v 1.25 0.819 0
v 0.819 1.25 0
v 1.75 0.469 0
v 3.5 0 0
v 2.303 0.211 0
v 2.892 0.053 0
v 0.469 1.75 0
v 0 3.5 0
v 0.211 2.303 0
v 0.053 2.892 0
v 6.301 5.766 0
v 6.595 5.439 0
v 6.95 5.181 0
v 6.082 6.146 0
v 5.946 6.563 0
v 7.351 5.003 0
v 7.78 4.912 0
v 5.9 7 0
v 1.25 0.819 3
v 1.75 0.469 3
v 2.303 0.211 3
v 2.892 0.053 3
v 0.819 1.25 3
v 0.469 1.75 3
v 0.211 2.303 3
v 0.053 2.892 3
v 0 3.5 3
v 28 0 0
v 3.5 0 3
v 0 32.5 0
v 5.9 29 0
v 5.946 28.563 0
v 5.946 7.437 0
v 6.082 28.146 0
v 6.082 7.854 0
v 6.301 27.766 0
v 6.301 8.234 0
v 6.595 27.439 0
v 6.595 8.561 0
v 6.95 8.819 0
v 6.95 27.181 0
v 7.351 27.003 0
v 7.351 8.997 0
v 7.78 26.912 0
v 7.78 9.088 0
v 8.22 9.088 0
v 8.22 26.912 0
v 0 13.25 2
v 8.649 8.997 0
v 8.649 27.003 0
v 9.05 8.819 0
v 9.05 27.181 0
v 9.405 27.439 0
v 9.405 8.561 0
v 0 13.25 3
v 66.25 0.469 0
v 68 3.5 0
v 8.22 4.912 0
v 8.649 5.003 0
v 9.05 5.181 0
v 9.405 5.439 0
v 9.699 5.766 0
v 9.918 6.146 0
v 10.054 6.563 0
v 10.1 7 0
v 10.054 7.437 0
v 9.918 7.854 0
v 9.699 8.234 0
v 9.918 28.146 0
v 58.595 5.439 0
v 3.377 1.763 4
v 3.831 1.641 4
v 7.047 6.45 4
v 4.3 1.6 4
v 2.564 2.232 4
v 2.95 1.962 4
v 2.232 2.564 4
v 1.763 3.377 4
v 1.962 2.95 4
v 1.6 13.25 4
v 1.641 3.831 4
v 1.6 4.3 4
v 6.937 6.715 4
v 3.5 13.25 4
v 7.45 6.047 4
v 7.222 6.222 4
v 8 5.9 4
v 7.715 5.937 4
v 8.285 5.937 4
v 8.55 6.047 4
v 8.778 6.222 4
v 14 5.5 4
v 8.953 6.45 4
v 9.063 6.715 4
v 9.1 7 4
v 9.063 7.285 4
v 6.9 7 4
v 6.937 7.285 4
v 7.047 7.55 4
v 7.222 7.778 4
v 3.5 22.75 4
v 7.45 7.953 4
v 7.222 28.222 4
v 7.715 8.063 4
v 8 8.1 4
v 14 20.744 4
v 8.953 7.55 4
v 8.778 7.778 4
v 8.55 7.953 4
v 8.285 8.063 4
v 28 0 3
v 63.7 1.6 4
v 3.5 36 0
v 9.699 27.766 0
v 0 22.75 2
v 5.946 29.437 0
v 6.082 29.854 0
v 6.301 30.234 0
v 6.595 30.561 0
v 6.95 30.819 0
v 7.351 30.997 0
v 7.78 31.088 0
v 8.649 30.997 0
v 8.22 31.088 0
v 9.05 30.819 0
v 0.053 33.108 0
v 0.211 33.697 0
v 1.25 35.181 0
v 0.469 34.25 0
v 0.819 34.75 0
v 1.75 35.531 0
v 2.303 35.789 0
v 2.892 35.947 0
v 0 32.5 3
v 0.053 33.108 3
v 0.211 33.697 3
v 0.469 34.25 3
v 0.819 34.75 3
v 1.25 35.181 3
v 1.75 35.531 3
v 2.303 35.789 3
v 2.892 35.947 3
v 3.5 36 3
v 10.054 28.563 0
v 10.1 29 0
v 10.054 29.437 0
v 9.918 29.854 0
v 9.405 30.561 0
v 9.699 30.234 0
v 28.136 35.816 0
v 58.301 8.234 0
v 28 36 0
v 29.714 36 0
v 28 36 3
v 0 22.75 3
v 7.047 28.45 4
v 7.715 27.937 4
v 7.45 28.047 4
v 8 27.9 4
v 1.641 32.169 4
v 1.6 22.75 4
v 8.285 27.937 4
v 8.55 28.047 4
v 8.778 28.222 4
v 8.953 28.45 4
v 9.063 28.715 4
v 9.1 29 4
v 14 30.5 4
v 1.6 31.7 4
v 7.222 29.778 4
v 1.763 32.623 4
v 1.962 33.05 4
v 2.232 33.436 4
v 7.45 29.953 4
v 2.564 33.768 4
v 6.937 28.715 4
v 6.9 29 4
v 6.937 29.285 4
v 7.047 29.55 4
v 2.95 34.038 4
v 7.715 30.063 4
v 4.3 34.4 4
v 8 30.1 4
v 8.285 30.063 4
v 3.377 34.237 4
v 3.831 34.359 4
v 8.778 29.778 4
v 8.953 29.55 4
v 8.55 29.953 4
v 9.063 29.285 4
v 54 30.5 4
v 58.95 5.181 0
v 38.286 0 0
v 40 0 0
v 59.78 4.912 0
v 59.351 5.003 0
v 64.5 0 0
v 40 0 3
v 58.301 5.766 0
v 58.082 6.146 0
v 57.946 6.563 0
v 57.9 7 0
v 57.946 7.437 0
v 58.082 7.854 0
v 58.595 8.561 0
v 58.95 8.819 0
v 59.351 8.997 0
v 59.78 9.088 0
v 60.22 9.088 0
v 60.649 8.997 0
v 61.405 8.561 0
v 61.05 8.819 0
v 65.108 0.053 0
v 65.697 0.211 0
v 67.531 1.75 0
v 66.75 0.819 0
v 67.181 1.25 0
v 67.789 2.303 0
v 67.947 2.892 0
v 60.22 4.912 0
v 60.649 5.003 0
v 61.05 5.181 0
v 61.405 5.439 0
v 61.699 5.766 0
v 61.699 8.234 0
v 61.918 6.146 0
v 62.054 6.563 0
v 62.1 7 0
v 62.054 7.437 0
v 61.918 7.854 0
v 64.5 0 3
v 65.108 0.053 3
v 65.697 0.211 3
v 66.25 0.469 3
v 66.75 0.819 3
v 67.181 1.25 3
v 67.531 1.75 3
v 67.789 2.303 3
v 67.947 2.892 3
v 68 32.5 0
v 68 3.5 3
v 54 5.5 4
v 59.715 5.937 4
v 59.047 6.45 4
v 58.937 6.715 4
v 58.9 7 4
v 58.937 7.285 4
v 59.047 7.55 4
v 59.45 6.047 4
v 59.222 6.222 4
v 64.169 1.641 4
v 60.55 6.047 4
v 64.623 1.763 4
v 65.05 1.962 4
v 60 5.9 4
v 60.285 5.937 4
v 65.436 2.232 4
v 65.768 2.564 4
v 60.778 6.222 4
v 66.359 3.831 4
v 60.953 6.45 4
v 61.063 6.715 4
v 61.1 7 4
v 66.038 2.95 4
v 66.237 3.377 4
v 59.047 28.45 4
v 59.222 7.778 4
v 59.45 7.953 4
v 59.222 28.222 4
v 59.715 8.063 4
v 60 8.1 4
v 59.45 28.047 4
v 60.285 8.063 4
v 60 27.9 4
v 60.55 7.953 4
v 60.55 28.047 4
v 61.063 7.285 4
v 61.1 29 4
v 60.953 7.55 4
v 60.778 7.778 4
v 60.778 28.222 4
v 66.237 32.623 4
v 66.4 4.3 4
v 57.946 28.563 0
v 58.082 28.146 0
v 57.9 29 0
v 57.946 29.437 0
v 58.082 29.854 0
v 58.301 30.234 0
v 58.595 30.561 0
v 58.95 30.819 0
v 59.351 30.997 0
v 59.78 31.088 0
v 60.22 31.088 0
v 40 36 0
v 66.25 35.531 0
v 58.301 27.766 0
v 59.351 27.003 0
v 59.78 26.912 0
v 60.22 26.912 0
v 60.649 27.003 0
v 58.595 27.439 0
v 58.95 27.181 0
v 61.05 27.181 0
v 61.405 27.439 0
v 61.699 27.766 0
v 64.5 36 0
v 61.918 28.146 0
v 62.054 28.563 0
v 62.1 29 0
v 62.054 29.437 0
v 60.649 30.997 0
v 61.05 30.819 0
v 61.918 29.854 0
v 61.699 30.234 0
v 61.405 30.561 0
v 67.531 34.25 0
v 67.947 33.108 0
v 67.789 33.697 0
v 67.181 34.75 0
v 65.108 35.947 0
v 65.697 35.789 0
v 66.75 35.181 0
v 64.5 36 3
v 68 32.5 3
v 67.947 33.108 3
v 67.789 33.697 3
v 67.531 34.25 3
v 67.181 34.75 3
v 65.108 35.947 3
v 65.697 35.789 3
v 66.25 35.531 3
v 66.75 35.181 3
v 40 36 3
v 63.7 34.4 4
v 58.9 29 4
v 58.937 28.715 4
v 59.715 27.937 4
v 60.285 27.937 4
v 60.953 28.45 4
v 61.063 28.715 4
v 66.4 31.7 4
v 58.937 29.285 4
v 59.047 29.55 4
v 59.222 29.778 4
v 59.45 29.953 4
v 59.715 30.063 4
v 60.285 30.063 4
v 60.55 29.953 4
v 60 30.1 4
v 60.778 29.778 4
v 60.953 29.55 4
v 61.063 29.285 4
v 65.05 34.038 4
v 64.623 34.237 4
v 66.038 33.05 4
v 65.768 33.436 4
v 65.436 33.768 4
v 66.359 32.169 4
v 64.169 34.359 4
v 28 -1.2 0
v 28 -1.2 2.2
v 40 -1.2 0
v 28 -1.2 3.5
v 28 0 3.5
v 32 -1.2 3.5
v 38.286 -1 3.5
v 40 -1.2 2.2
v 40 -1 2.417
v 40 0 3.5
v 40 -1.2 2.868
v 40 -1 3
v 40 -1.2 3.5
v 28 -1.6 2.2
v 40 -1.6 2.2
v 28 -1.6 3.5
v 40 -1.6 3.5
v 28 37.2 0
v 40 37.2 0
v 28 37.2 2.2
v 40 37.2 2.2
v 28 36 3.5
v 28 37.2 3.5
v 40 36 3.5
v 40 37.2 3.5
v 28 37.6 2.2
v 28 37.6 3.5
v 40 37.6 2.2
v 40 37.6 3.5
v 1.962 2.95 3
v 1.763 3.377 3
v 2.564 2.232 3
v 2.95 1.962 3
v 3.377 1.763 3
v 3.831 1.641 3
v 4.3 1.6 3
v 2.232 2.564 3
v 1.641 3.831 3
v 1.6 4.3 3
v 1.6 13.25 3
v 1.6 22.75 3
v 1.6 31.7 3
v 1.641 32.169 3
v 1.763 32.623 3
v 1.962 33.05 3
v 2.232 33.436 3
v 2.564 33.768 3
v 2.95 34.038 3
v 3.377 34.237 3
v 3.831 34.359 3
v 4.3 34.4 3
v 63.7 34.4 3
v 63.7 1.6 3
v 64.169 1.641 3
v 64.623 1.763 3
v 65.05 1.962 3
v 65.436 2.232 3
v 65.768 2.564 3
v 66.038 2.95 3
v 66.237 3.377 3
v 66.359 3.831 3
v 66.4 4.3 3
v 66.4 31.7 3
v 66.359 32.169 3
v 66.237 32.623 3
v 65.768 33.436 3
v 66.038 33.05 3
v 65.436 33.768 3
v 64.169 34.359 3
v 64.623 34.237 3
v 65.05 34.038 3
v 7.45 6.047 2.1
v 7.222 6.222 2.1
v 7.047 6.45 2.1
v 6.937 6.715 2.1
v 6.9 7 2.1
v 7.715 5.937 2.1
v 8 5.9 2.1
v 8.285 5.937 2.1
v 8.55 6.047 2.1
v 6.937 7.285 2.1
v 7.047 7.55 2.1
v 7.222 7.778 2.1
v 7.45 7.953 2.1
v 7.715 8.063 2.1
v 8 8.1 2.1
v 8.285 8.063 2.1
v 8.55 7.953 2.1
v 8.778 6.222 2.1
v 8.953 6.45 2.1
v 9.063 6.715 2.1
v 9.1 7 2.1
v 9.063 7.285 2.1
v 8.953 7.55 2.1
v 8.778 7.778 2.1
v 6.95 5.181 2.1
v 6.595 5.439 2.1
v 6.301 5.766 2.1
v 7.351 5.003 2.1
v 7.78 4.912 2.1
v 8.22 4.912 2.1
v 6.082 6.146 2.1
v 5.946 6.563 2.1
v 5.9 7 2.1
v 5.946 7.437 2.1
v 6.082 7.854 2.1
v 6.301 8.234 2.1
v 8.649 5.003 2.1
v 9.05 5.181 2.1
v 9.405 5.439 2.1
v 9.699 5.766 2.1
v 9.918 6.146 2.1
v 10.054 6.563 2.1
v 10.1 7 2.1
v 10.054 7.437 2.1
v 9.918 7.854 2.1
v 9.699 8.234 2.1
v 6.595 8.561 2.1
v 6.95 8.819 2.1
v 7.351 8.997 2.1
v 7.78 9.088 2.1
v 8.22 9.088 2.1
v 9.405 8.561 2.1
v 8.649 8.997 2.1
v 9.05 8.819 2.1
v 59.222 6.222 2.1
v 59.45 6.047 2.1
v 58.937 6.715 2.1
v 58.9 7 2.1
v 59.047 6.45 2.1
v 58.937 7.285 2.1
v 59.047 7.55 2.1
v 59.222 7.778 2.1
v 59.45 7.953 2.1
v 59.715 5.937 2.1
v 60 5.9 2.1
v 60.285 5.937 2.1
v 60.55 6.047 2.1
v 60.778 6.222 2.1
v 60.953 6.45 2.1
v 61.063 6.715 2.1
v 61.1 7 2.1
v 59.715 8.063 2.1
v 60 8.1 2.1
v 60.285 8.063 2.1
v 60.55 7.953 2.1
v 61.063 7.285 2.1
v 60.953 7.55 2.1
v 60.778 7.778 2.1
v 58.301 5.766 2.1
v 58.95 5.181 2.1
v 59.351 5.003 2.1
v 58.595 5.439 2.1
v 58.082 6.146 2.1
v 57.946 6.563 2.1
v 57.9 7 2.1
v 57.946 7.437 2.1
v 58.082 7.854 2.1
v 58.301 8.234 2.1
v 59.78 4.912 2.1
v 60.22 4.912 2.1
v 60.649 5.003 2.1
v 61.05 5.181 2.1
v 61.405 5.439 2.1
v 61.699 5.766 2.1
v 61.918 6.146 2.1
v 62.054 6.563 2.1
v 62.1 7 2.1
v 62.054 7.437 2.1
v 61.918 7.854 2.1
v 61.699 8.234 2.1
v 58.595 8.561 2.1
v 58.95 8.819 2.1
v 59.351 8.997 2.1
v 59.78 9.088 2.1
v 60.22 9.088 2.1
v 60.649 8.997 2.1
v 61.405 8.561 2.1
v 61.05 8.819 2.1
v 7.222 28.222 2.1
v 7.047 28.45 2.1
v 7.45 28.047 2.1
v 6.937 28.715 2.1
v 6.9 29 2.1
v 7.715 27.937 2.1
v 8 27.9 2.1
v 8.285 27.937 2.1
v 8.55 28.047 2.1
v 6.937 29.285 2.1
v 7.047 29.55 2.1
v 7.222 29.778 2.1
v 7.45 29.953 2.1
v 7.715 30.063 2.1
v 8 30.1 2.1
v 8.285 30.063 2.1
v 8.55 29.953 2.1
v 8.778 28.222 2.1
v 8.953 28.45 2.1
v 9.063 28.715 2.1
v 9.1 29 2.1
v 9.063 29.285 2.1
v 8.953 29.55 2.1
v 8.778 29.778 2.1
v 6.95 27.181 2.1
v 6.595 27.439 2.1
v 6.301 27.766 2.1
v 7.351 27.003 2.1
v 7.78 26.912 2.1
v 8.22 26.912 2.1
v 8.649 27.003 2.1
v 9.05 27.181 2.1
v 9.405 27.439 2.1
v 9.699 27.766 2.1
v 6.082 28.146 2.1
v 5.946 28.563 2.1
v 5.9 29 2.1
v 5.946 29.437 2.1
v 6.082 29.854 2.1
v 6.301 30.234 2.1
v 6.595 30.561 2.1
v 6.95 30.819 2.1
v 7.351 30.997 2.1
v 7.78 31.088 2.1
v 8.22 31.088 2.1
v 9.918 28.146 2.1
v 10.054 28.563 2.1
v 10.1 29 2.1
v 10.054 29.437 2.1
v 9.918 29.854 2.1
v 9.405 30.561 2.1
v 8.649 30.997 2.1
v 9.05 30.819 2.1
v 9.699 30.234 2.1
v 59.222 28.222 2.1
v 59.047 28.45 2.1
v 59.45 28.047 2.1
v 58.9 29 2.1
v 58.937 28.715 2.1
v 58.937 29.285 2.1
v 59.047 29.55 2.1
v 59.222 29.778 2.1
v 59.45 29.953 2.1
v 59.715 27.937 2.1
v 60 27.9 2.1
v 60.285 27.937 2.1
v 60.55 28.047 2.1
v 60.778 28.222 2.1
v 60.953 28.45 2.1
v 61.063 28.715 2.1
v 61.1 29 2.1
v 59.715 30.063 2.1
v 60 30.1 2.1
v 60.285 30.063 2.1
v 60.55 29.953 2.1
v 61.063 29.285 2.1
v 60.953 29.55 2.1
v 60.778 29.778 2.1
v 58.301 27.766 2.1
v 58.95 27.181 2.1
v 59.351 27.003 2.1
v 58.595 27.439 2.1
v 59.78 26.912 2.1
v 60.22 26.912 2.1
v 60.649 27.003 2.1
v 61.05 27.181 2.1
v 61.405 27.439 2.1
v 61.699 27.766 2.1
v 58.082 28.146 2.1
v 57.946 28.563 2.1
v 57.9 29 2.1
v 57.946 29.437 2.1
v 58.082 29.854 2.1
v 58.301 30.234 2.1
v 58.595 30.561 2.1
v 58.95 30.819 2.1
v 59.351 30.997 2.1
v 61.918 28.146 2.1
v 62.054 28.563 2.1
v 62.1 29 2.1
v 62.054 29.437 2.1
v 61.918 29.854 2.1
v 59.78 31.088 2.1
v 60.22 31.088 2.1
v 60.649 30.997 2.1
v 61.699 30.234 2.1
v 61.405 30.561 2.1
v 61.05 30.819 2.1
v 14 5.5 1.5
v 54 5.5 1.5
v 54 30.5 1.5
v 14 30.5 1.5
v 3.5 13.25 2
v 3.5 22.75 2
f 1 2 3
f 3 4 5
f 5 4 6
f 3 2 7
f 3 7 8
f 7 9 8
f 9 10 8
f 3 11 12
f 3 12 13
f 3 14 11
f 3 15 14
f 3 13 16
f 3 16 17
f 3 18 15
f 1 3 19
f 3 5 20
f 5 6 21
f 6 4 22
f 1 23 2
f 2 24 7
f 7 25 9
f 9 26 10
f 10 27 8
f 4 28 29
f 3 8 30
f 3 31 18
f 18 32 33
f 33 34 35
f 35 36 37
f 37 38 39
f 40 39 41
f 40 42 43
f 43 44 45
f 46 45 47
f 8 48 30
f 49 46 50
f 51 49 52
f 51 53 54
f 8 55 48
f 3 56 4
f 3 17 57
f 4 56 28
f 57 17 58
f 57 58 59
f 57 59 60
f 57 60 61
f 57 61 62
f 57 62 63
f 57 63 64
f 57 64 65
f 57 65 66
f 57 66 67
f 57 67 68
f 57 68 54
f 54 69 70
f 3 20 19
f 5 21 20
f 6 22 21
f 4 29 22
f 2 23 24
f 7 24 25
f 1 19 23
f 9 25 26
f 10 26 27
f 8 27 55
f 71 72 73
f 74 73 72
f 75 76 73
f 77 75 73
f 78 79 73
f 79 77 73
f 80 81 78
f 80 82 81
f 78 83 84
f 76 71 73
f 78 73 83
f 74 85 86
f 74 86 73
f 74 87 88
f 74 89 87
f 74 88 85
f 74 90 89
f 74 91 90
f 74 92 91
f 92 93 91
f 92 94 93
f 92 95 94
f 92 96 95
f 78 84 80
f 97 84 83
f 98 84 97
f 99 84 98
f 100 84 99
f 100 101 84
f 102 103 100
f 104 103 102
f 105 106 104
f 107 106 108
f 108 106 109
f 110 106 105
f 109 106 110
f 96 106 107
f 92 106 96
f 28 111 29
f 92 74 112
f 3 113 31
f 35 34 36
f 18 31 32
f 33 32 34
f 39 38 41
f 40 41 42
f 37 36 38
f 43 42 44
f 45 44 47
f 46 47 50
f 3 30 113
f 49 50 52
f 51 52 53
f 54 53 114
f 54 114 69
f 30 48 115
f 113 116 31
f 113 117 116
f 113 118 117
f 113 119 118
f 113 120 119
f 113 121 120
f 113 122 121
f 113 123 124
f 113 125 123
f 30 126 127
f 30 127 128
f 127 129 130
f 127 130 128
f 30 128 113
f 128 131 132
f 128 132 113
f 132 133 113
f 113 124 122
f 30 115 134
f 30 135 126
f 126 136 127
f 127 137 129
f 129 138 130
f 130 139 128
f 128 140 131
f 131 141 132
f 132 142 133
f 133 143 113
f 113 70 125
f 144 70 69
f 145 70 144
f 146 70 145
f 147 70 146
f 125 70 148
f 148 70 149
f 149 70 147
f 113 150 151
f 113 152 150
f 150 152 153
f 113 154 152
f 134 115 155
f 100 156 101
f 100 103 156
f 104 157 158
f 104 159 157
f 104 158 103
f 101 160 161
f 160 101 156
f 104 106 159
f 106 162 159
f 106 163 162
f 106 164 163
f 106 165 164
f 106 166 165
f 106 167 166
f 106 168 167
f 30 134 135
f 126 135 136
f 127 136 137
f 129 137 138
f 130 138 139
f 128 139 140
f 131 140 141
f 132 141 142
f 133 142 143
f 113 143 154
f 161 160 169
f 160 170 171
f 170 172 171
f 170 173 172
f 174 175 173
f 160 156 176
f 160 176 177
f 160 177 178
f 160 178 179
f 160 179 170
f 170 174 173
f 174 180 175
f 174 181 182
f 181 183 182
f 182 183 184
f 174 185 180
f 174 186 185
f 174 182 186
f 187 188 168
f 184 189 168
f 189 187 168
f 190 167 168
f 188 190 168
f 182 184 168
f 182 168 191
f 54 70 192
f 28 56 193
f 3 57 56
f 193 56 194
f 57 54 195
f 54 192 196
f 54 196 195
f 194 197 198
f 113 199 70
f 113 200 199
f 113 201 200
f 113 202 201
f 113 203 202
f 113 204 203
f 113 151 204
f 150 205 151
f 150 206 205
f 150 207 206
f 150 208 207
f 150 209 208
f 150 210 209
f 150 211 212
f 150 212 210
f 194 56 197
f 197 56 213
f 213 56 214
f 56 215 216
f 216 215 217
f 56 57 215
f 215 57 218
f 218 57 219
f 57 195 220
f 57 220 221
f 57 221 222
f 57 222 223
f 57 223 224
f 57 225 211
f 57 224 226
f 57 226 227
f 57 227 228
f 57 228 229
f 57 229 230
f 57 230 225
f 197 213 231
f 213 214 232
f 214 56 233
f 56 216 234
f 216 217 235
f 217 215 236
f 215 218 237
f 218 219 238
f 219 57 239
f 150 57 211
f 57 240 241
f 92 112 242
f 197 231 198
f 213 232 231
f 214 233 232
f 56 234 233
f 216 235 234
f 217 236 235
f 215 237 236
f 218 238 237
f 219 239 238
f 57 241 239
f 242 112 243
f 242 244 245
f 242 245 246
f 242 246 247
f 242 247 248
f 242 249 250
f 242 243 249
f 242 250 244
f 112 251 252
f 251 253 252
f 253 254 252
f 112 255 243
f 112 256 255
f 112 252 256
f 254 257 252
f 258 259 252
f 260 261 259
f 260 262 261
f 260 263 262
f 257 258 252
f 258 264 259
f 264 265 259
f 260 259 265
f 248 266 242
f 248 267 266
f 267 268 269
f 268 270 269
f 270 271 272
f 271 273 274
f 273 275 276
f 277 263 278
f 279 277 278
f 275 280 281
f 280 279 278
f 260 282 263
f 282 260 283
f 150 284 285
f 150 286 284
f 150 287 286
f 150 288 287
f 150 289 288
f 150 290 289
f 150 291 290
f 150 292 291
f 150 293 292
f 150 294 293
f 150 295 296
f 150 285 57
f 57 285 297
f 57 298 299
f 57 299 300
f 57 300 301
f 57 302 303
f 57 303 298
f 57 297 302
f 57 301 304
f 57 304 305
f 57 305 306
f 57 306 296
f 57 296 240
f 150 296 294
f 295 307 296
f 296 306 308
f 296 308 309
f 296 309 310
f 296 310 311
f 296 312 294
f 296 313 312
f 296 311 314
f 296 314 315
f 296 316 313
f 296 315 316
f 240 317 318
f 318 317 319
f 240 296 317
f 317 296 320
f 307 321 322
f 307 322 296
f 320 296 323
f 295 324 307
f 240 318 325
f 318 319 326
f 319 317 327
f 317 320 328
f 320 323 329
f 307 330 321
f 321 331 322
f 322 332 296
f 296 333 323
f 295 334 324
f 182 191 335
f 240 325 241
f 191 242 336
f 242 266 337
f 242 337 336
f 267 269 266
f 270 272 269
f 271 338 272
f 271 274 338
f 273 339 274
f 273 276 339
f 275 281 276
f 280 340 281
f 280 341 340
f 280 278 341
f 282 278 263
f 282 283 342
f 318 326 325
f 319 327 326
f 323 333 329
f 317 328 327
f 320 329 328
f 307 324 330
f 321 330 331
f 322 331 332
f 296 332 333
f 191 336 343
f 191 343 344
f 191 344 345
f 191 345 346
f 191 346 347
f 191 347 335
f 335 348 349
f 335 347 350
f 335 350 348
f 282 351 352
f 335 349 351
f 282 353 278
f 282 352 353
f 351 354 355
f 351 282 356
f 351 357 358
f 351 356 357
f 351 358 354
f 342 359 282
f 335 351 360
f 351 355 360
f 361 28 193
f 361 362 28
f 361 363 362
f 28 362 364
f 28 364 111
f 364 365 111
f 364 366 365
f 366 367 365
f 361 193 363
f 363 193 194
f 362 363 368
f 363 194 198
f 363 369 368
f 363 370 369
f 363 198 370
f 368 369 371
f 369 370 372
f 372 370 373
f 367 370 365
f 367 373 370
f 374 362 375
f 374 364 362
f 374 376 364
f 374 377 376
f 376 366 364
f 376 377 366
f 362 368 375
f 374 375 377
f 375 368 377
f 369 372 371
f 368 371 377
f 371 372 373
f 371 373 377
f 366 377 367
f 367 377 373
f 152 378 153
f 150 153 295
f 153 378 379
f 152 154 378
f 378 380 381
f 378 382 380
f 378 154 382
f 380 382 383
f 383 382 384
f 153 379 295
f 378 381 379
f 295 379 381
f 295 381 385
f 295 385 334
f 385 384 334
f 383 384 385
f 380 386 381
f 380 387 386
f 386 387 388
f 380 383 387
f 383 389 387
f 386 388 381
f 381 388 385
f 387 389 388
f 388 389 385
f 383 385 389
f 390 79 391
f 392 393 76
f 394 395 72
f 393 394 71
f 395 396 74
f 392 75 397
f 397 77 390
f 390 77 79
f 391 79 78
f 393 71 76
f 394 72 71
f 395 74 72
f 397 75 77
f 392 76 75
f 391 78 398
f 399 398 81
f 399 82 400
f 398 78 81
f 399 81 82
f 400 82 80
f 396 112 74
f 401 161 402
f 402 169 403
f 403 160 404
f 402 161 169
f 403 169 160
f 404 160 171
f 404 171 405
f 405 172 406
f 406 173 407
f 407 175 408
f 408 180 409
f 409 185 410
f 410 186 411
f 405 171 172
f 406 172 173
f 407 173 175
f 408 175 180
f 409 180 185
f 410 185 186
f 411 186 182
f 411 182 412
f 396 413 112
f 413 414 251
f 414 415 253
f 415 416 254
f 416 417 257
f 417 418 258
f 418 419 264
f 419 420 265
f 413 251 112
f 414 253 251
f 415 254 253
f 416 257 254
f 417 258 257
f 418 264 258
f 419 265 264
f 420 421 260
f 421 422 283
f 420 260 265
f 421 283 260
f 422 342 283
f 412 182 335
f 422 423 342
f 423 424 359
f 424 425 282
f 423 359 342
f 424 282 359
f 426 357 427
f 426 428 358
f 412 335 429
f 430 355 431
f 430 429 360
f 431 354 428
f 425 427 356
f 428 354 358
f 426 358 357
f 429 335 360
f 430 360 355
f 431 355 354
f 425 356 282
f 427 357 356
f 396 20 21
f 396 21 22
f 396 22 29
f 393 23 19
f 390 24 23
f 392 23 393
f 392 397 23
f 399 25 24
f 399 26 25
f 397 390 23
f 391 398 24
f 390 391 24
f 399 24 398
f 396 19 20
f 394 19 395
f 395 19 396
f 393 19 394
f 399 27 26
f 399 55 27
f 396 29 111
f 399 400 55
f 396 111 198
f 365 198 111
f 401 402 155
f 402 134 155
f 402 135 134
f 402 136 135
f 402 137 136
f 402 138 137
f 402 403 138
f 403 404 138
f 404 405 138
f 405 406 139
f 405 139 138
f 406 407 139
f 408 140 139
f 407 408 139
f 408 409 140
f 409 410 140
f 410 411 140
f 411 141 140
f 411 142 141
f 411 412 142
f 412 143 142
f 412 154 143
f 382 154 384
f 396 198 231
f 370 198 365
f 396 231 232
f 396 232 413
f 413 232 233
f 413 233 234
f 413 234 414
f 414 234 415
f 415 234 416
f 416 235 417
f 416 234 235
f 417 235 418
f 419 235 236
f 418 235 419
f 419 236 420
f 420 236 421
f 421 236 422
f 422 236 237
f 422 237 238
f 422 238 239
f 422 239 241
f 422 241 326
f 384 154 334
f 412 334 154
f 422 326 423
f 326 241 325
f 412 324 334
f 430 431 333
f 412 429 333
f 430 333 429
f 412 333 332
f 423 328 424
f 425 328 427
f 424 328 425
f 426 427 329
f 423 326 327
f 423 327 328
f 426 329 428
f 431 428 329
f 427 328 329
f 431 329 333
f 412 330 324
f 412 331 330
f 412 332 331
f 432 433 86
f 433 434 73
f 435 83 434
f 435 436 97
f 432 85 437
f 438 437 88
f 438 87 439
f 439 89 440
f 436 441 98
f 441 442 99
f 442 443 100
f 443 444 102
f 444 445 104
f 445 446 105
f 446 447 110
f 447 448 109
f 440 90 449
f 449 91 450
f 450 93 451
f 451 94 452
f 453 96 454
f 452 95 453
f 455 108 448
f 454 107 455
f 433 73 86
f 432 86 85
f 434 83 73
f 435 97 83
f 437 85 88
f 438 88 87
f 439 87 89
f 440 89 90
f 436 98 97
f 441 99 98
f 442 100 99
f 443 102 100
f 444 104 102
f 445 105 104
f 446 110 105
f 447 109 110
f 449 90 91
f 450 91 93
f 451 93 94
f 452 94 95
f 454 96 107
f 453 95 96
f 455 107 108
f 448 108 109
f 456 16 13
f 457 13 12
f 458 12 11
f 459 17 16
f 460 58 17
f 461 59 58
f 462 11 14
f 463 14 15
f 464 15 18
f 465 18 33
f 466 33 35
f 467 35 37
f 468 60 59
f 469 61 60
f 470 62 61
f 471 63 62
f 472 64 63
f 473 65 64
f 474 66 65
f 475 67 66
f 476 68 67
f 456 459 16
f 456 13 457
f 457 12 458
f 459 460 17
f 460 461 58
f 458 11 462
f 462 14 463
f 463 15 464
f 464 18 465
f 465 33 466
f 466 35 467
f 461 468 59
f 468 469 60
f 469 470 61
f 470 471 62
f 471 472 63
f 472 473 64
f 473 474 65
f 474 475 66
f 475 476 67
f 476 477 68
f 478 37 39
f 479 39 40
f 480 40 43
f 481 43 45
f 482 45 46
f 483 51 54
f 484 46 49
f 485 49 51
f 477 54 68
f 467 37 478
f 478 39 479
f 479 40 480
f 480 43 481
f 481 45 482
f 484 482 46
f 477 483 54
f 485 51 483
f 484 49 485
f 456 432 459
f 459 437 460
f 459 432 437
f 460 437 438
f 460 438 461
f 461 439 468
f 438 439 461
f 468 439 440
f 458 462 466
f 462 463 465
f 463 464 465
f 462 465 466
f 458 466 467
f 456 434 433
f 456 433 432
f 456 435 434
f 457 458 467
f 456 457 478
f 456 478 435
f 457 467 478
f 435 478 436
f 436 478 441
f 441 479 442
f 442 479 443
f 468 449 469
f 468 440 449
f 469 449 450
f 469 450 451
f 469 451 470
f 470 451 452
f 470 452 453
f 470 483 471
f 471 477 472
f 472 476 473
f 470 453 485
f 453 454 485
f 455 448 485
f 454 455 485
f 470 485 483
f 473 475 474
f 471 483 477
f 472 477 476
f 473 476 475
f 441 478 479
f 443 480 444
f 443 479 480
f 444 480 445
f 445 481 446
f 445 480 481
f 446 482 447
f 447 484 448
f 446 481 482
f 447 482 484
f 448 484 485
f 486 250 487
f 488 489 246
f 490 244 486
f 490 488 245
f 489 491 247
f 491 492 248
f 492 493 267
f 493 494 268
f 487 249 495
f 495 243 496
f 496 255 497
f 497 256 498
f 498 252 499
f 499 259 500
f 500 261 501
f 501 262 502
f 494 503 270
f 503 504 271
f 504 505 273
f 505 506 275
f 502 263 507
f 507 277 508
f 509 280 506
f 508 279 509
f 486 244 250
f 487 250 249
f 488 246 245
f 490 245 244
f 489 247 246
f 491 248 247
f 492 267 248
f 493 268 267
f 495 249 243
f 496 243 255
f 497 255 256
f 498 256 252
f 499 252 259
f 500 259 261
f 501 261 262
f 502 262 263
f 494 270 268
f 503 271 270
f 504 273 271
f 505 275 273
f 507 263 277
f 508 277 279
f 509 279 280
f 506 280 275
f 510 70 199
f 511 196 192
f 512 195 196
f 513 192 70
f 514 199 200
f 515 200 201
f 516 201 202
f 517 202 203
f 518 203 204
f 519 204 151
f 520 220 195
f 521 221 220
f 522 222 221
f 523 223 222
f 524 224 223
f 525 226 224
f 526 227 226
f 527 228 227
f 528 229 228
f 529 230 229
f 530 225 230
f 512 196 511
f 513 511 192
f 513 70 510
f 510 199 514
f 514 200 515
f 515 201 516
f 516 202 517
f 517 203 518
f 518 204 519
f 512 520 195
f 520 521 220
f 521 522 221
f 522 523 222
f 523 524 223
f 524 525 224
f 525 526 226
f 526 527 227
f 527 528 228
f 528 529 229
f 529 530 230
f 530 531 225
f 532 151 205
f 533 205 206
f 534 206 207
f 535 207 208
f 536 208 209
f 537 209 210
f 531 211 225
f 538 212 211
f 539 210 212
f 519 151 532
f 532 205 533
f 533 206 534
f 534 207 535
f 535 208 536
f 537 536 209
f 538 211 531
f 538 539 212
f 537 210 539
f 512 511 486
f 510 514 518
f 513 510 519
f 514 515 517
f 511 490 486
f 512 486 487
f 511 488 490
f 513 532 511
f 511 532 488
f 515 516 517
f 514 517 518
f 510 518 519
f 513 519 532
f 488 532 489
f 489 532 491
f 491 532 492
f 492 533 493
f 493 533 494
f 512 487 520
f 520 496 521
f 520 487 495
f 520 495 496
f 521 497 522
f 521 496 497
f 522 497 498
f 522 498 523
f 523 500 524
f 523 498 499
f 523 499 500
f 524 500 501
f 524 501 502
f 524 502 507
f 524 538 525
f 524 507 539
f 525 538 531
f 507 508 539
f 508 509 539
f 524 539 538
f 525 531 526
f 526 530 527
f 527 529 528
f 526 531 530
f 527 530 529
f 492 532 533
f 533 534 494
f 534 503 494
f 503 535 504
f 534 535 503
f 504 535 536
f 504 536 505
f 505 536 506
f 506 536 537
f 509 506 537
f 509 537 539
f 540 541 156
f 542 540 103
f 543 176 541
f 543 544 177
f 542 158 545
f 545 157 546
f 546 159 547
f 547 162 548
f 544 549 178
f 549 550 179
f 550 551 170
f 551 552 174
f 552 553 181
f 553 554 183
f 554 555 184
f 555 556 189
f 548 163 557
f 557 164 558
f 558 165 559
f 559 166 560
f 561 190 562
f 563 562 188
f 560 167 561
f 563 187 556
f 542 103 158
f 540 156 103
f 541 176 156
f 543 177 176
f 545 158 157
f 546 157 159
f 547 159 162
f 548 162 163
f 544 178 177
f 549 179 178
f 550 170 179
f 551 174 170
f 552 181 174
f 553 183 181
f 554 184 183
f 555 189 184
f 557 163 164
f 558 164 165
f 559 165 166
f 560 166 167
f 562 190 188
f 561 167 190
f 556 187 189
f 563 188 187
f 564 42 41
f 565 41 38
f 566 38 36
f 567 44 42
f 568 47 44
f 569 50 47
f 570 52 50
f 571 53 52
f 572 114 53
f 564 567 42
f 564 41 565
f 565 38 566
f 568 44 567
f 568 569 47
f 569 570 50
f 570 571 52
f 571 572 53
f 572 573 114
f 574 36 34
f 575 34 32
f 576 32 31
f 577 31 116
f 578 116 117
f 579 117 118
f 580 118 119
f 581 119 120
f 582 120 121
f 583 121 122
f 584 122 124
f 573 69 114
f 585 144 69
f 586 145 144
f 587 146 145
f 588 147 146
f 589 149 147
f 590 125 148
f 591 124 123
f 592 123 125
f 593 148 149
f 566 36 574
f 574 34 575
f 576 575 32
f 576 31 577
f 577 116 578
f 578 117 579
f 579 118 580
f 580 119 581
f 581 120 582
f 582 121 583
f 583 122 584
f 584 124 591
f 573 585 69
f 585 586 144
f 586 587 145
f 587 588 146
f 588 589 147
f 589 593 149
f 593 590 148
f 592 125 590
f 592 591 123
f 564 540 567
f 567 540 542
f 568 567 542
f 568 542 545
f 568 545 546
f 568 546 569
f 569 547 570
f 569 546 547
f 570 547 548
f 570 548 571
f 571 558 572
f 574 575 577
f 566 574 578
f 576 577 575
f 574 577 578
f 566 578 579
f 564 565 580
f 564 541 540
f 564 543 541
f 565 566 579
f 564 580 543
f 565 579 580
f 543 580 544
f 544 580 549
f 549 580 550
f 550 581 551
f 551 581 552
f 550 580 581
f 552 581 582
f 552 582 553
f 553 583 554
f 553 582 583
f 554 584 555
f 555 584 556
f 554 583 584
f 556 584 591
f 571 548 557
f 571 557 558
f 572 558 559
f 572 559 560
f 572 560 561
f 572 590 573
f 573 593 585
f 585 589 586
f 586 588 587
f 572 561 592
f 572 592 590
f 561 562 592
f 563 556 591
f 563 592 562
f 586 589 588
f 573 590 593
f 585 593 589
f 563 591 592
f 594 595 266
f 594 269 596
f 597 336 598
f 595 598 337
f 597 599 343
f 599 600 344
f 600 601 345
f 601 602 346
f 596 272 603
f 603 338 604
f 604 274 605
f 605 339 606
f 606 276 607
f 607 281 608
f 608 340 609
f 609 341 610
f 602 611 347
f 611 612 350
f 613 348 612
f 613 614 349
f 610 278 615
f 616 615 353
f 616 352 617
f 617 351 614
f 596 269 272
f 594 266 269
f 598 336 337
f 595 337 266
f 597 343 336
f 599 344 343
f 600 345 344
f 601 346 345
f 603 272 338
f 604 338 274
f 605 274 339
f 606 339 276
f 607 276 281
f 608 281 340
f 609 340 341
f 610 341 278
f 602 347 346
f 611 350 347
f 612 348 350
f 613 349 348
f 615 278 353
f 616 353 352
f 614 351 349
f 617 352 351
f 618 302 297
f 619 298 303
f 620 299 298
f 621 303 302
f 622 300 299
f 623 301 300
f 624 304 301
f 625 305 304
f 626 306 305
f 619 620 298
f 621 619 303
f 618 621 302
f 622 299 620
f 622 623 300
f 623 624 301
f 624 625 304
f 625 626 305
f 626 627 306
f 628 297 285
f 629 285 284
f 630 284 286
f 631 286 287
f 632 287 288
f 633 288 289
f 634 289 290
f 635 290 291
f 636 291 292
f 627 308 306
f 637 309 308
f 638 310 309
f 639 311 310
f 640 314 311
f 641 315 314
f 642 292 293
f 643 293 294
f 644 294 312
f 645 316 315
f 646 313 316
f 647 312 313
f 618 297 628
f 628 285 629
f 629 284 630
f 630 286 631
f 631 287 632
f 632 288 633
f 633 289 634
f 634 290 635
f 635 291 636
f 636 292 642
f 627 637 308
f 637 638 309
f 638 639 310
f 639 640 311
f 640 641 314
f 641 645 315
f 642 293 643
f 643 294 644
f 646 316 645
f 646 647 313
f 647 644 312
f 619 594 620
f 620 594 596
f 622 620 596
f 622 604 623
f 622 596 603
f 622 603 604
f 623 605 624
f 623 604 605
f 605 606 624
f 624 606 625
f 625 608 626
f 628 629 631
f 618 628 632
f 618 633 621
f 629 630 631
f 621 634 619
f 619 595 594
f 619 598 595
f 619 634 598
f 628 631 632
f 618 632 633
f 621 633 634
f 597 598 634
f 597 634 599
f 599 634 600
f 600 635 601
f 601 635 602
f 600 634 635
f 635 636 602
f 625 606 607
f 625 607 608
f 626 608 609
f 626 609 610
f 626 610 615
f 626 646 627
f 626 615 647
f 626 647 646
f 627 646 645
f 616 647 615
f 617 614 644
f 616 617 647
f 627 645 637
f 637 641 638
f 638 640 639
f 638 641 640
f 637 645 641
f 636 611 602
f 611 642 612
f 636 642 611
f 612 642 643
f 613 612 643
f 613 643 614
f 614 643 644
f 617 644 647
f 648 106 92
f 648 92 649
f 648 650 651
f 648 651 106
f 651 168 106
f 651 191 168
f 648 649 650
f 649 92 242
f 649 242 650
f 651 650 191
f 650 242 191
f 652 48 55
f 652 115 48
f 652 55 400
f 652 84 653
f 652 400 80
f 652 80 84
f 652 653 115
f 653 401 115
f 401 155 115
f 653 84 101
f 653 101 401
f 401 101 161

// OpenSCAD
// file: ../../00_common/dummies/dummy_omm_ucs_pcb.scad
// =============================================================================
// OpenMotorBridge - Dummy 3D Model: OMM 2.4 GHz UCS Intercom PCBA (PCBA 09)
// =============================================================================
// File: hardware/cad/scad/00_common/dummies/dummy_omm_ucs_pcb.scad
// Description: Accurate 3D CAD model of the autonomous OMM 2.4 GHz UCS PCB:
//              - 60.0 x 30.0 x 1.0 mm FR4 substrate (ENIG gold finish)
//              - 4x M2 mounting holes (pitch: 52.0 x 22.0 mm)
//              - Espressif ESP32-C6-MINI-1 (13.2 x 16.6 mm)
//              - Texas Instruments BQ24075 PMIC (QFN-16 3x3mm)
//              - Everest Semi ES8311 Audio Codec (QFN-20 3x3mm)
//              - Johanson 2450AT45A100 2.4 GHz ceramic antenna
//              - IP67 16-Pin USB-C receptacle (Korean HRO TYPE-C-31-M-12)
//              - 4x tactile IP67 micro-switches (Panasonic EVQ-P2)
//              - WS2812B-2020 RGB Status-LED
//              - 600 mAh LiPo Flat Pouch Cell (38 x 24 x 4.5 mm)
// =============================================================================

include <../parameters.scad>;

module dummy_omm_ucs_pcb() {
    pcb_l = 60.0;
    pcb_w = 30.0;
    pcb_h = 1.0;

    // 1. FR4 Substrate (Black Soldermask, ENIG Gold Pads)
    color([0.12, 0.12, 0.14]) {
        difference() {
            // Main PCB outline with rounded corners
            hull() {
                translate([2.5, 2.5, 0]) cylinder(r=2.5, h=pcb_h, $fn=32);
                translate([pcb_l - 2.5, 2.5, 0]) cylinder(r=2.5, h=pcb_h, $fn=32);
                translate([2.5, pcb_w - 2.5, 0]) cylinder(r=2.5, h=pcb_h, $fn=32);
                translate([pcb_l - 2.5, pcb_w - 2.5, 0]) cylinder(r=2.5, h=pcb_h, $fn=32);
            }
            // 4x M2 Mounting Holes (52.0 x 22.0 mm pitch, 4.0 mm from edges)
            translate([4.0, 4.0, -0.1]) cylinder(r=M2_SCREW_HOLE_R, h=pcb_h + 0.2, $fn=24);
            translate([pcb_l - 4.0, 4.0, -0.1]) cylinder(r=M2_SCREW_HOLE_R, h=pcb_h + 0.2, $fn=24);
            translate([4.0, pcb_w - 4.0, -0.1]) cylinder(r=M2_SCREW_HOLE_R, h=pcb_h + 0.2, $fn=24);
            translate([pcb_l - 4.0, pcb_w - 4.0, -0.1]) cylinder(r=M2_SCREW_HOLE_R, h=pcb_h + 0.2, $fn=24);
        }
    }

    // 2. Espressif ESP32-C6-MINI-1 Module (Top Face, Centered in X=26mm)
    color("silver") {
        translate([18.0, 7.0, pcb_h])
            cube(size=[16.6, 13.2, 2.4], center=false);
    }

    // 3. TI BQ24075 PMIC (QFN-16 3x3mm)
    color("black") {
        translate([38.0, 6.0, pcb_h])
            cube(size=[3.0, 3.0, 0.9], center=false);
    }

    // 4. Everest Semi ES8311 Audio Codec (QFN-20 3x3mm)
    color("black") {
        translate([38.0, 14.0, pcb_h])
            cube(size=[3.0, 3.0, 0.9], center=false);
    }

    // 5. Johanson 2450AT Ceramic Chip Antenna (+X Edge, Keepout zone)
    color("whitesmoke") {
        translate([pcb_l - 11.5, pcb_w/2.0 - 1.0, pcb_h])
            cube(size=[9.5, 2.0, 1.2], center=false);
    }

    // 6. IP67 16-Pin USB-C Receptacle (-X Edge, facing outward)
    color("silver") {
        translate([-1.5, pcb_w/2.0 - 4.5, pcb_h])
            cube(size=[7.5, 9.0, 3.2], center=false);
    }

    // 7. 4x Tactile IP67 Micro-Switches (Top Face)
    color("darkslategray") {
        // SW1: Power / MFB
        translate([10.0, 22.0, pcb_h]) cube(size=[3.5, 2.8, 1.2], center=true);
        // SW2: Mesh / Group
        translate([22.0, 22.0, pcb_h]) cube(size=[3.5, 2.8, 1.2], center=true);
        // SW3: Vol+
        translate([34.0, 22.0, pcb_h]) cube(size=[3.5, 2.8, 1.2], center=true);
        // SW4: Vol-
        translate([46.0, 22.0, pcb_h]) cube(size=[3.5, 2.8, 1.2], center=true);
    }

    // 8. WS2812B-2020 RGB Status-LED
    color("cyan") {
        translate([16.0, 22.0, pcb_h])
            cube(size=[2.0, 2.0, 0.7], center=true);
    }

    // 9. 1S LiPo Flat Pouch Cell (Mounted on Bottom Face or Nested)
    color([0.15, 0.35, 0.65]) {
        translate([11.0, (pcb_w - 24.0)/2.0, -4.5])
            cube(size=[38.0, 24.0, 4.5], center=false);
    }
}

// Standalone Render Preview
dummy_omm_ucs_pcb();
// file: ../../00_common/screw_bosses.scad
// =============================================================================
// OpenMotorBridge - Screw Bosses & Fastener Primitives
// =============================================================================
// File: hardware/cad/scad/00_common/screw_bosses.scad
// Description: Reusable parametric modules for screw standoffs, corner clamping
//              posts, and mounting ears.
// =============================================================================

include <parameters.scad>;

// 1. Cylindrical Screw Standoff Boss (with center hole)
module screw_boss(outer_r=2.5, inner_r=1.2, h=5.0) {
    difference() {
        cylinder(r=outer_r, h=h, center=false);
        translate([0, 0, -0.1])
            cylinder(r=inner_r, h=h + 0.2, center=false);
    }
}

// 2. Rectangular Corner Clamping Post (with center screw hole)
module corner_screw_post(size_x=5.0, size_y=5.0, h=12.0, hole_r=1.65, hole_h=10.0, hole_offset_z=2.0) {
    difference() {
        cube(size=[size_x, size_y, h], center=false);
        translate([size_x/2.0, size_y/2.0, hole_offset_z])
            cylinder(r=hole_r, h=hole_h + 0.1, center=false);
    }
}

// 3. M4 Silentblock Outer Mounting Ear (Centered in Y around y=0, extends along +X)
module mounting_ear_m4(ear_len=14.0, ear_w=12.0, ear_h=5.0, hole_r=2.2) {
    difference() {
        union() {
            translate([0, -ear_w/2.0, 0])
                cube(size=[ear_len - ear_w/2.0, ear_w, ear_h], center=false);
            translate([ear_len - ear_w/2.0, 0, 0])
                cylinder(r=ear_w/2.0, h=ear_h, center=false);
        }
        translate([ear_len - ear_w/2.0, 0, -0.1])
            cylinder(r=hole_r, h=ear_h + 0.2, center=false);
    }
}

// 4. Captive Hex Nut Pocket (DIN 934 / DIN 985 with center screw through-hole)
module hex_nut_pocket(sw=NUT_M4_SW, h=NUT_M4_H, screw_r=M4_SCREW_HOLE_R, through_h=10.0) {
    // Hexagonal pocket (flat-to-flat SW converted to circle radius: r = sw / sqrt(3))
    hex_r = sw / sqrt(3);
    union() {
        // Hexagonal nut pocket
        cylinder(r=hex_r, h=h, center=false, $fn=6);
        // Screw clearance through-hole
        translate([0, 0, -through_h/2.0])
            cylinder(r=screw_r, h=through_h + h, center=false, $fn=30);
    }
}
// main file
// =============================================================================
// OpenMotorBridge - OMM 2.4 GHz UCS Module: Bottom Shell (PA12 MJF)
// =============================================================================
// File: hardware/cad/scad/03_pod_cartridges/parts/omm_ucs_bottom_shell.scad
// =============================================================================

use <omm_ucs_module.scad>;

omm_ucs_bottom_shell();
